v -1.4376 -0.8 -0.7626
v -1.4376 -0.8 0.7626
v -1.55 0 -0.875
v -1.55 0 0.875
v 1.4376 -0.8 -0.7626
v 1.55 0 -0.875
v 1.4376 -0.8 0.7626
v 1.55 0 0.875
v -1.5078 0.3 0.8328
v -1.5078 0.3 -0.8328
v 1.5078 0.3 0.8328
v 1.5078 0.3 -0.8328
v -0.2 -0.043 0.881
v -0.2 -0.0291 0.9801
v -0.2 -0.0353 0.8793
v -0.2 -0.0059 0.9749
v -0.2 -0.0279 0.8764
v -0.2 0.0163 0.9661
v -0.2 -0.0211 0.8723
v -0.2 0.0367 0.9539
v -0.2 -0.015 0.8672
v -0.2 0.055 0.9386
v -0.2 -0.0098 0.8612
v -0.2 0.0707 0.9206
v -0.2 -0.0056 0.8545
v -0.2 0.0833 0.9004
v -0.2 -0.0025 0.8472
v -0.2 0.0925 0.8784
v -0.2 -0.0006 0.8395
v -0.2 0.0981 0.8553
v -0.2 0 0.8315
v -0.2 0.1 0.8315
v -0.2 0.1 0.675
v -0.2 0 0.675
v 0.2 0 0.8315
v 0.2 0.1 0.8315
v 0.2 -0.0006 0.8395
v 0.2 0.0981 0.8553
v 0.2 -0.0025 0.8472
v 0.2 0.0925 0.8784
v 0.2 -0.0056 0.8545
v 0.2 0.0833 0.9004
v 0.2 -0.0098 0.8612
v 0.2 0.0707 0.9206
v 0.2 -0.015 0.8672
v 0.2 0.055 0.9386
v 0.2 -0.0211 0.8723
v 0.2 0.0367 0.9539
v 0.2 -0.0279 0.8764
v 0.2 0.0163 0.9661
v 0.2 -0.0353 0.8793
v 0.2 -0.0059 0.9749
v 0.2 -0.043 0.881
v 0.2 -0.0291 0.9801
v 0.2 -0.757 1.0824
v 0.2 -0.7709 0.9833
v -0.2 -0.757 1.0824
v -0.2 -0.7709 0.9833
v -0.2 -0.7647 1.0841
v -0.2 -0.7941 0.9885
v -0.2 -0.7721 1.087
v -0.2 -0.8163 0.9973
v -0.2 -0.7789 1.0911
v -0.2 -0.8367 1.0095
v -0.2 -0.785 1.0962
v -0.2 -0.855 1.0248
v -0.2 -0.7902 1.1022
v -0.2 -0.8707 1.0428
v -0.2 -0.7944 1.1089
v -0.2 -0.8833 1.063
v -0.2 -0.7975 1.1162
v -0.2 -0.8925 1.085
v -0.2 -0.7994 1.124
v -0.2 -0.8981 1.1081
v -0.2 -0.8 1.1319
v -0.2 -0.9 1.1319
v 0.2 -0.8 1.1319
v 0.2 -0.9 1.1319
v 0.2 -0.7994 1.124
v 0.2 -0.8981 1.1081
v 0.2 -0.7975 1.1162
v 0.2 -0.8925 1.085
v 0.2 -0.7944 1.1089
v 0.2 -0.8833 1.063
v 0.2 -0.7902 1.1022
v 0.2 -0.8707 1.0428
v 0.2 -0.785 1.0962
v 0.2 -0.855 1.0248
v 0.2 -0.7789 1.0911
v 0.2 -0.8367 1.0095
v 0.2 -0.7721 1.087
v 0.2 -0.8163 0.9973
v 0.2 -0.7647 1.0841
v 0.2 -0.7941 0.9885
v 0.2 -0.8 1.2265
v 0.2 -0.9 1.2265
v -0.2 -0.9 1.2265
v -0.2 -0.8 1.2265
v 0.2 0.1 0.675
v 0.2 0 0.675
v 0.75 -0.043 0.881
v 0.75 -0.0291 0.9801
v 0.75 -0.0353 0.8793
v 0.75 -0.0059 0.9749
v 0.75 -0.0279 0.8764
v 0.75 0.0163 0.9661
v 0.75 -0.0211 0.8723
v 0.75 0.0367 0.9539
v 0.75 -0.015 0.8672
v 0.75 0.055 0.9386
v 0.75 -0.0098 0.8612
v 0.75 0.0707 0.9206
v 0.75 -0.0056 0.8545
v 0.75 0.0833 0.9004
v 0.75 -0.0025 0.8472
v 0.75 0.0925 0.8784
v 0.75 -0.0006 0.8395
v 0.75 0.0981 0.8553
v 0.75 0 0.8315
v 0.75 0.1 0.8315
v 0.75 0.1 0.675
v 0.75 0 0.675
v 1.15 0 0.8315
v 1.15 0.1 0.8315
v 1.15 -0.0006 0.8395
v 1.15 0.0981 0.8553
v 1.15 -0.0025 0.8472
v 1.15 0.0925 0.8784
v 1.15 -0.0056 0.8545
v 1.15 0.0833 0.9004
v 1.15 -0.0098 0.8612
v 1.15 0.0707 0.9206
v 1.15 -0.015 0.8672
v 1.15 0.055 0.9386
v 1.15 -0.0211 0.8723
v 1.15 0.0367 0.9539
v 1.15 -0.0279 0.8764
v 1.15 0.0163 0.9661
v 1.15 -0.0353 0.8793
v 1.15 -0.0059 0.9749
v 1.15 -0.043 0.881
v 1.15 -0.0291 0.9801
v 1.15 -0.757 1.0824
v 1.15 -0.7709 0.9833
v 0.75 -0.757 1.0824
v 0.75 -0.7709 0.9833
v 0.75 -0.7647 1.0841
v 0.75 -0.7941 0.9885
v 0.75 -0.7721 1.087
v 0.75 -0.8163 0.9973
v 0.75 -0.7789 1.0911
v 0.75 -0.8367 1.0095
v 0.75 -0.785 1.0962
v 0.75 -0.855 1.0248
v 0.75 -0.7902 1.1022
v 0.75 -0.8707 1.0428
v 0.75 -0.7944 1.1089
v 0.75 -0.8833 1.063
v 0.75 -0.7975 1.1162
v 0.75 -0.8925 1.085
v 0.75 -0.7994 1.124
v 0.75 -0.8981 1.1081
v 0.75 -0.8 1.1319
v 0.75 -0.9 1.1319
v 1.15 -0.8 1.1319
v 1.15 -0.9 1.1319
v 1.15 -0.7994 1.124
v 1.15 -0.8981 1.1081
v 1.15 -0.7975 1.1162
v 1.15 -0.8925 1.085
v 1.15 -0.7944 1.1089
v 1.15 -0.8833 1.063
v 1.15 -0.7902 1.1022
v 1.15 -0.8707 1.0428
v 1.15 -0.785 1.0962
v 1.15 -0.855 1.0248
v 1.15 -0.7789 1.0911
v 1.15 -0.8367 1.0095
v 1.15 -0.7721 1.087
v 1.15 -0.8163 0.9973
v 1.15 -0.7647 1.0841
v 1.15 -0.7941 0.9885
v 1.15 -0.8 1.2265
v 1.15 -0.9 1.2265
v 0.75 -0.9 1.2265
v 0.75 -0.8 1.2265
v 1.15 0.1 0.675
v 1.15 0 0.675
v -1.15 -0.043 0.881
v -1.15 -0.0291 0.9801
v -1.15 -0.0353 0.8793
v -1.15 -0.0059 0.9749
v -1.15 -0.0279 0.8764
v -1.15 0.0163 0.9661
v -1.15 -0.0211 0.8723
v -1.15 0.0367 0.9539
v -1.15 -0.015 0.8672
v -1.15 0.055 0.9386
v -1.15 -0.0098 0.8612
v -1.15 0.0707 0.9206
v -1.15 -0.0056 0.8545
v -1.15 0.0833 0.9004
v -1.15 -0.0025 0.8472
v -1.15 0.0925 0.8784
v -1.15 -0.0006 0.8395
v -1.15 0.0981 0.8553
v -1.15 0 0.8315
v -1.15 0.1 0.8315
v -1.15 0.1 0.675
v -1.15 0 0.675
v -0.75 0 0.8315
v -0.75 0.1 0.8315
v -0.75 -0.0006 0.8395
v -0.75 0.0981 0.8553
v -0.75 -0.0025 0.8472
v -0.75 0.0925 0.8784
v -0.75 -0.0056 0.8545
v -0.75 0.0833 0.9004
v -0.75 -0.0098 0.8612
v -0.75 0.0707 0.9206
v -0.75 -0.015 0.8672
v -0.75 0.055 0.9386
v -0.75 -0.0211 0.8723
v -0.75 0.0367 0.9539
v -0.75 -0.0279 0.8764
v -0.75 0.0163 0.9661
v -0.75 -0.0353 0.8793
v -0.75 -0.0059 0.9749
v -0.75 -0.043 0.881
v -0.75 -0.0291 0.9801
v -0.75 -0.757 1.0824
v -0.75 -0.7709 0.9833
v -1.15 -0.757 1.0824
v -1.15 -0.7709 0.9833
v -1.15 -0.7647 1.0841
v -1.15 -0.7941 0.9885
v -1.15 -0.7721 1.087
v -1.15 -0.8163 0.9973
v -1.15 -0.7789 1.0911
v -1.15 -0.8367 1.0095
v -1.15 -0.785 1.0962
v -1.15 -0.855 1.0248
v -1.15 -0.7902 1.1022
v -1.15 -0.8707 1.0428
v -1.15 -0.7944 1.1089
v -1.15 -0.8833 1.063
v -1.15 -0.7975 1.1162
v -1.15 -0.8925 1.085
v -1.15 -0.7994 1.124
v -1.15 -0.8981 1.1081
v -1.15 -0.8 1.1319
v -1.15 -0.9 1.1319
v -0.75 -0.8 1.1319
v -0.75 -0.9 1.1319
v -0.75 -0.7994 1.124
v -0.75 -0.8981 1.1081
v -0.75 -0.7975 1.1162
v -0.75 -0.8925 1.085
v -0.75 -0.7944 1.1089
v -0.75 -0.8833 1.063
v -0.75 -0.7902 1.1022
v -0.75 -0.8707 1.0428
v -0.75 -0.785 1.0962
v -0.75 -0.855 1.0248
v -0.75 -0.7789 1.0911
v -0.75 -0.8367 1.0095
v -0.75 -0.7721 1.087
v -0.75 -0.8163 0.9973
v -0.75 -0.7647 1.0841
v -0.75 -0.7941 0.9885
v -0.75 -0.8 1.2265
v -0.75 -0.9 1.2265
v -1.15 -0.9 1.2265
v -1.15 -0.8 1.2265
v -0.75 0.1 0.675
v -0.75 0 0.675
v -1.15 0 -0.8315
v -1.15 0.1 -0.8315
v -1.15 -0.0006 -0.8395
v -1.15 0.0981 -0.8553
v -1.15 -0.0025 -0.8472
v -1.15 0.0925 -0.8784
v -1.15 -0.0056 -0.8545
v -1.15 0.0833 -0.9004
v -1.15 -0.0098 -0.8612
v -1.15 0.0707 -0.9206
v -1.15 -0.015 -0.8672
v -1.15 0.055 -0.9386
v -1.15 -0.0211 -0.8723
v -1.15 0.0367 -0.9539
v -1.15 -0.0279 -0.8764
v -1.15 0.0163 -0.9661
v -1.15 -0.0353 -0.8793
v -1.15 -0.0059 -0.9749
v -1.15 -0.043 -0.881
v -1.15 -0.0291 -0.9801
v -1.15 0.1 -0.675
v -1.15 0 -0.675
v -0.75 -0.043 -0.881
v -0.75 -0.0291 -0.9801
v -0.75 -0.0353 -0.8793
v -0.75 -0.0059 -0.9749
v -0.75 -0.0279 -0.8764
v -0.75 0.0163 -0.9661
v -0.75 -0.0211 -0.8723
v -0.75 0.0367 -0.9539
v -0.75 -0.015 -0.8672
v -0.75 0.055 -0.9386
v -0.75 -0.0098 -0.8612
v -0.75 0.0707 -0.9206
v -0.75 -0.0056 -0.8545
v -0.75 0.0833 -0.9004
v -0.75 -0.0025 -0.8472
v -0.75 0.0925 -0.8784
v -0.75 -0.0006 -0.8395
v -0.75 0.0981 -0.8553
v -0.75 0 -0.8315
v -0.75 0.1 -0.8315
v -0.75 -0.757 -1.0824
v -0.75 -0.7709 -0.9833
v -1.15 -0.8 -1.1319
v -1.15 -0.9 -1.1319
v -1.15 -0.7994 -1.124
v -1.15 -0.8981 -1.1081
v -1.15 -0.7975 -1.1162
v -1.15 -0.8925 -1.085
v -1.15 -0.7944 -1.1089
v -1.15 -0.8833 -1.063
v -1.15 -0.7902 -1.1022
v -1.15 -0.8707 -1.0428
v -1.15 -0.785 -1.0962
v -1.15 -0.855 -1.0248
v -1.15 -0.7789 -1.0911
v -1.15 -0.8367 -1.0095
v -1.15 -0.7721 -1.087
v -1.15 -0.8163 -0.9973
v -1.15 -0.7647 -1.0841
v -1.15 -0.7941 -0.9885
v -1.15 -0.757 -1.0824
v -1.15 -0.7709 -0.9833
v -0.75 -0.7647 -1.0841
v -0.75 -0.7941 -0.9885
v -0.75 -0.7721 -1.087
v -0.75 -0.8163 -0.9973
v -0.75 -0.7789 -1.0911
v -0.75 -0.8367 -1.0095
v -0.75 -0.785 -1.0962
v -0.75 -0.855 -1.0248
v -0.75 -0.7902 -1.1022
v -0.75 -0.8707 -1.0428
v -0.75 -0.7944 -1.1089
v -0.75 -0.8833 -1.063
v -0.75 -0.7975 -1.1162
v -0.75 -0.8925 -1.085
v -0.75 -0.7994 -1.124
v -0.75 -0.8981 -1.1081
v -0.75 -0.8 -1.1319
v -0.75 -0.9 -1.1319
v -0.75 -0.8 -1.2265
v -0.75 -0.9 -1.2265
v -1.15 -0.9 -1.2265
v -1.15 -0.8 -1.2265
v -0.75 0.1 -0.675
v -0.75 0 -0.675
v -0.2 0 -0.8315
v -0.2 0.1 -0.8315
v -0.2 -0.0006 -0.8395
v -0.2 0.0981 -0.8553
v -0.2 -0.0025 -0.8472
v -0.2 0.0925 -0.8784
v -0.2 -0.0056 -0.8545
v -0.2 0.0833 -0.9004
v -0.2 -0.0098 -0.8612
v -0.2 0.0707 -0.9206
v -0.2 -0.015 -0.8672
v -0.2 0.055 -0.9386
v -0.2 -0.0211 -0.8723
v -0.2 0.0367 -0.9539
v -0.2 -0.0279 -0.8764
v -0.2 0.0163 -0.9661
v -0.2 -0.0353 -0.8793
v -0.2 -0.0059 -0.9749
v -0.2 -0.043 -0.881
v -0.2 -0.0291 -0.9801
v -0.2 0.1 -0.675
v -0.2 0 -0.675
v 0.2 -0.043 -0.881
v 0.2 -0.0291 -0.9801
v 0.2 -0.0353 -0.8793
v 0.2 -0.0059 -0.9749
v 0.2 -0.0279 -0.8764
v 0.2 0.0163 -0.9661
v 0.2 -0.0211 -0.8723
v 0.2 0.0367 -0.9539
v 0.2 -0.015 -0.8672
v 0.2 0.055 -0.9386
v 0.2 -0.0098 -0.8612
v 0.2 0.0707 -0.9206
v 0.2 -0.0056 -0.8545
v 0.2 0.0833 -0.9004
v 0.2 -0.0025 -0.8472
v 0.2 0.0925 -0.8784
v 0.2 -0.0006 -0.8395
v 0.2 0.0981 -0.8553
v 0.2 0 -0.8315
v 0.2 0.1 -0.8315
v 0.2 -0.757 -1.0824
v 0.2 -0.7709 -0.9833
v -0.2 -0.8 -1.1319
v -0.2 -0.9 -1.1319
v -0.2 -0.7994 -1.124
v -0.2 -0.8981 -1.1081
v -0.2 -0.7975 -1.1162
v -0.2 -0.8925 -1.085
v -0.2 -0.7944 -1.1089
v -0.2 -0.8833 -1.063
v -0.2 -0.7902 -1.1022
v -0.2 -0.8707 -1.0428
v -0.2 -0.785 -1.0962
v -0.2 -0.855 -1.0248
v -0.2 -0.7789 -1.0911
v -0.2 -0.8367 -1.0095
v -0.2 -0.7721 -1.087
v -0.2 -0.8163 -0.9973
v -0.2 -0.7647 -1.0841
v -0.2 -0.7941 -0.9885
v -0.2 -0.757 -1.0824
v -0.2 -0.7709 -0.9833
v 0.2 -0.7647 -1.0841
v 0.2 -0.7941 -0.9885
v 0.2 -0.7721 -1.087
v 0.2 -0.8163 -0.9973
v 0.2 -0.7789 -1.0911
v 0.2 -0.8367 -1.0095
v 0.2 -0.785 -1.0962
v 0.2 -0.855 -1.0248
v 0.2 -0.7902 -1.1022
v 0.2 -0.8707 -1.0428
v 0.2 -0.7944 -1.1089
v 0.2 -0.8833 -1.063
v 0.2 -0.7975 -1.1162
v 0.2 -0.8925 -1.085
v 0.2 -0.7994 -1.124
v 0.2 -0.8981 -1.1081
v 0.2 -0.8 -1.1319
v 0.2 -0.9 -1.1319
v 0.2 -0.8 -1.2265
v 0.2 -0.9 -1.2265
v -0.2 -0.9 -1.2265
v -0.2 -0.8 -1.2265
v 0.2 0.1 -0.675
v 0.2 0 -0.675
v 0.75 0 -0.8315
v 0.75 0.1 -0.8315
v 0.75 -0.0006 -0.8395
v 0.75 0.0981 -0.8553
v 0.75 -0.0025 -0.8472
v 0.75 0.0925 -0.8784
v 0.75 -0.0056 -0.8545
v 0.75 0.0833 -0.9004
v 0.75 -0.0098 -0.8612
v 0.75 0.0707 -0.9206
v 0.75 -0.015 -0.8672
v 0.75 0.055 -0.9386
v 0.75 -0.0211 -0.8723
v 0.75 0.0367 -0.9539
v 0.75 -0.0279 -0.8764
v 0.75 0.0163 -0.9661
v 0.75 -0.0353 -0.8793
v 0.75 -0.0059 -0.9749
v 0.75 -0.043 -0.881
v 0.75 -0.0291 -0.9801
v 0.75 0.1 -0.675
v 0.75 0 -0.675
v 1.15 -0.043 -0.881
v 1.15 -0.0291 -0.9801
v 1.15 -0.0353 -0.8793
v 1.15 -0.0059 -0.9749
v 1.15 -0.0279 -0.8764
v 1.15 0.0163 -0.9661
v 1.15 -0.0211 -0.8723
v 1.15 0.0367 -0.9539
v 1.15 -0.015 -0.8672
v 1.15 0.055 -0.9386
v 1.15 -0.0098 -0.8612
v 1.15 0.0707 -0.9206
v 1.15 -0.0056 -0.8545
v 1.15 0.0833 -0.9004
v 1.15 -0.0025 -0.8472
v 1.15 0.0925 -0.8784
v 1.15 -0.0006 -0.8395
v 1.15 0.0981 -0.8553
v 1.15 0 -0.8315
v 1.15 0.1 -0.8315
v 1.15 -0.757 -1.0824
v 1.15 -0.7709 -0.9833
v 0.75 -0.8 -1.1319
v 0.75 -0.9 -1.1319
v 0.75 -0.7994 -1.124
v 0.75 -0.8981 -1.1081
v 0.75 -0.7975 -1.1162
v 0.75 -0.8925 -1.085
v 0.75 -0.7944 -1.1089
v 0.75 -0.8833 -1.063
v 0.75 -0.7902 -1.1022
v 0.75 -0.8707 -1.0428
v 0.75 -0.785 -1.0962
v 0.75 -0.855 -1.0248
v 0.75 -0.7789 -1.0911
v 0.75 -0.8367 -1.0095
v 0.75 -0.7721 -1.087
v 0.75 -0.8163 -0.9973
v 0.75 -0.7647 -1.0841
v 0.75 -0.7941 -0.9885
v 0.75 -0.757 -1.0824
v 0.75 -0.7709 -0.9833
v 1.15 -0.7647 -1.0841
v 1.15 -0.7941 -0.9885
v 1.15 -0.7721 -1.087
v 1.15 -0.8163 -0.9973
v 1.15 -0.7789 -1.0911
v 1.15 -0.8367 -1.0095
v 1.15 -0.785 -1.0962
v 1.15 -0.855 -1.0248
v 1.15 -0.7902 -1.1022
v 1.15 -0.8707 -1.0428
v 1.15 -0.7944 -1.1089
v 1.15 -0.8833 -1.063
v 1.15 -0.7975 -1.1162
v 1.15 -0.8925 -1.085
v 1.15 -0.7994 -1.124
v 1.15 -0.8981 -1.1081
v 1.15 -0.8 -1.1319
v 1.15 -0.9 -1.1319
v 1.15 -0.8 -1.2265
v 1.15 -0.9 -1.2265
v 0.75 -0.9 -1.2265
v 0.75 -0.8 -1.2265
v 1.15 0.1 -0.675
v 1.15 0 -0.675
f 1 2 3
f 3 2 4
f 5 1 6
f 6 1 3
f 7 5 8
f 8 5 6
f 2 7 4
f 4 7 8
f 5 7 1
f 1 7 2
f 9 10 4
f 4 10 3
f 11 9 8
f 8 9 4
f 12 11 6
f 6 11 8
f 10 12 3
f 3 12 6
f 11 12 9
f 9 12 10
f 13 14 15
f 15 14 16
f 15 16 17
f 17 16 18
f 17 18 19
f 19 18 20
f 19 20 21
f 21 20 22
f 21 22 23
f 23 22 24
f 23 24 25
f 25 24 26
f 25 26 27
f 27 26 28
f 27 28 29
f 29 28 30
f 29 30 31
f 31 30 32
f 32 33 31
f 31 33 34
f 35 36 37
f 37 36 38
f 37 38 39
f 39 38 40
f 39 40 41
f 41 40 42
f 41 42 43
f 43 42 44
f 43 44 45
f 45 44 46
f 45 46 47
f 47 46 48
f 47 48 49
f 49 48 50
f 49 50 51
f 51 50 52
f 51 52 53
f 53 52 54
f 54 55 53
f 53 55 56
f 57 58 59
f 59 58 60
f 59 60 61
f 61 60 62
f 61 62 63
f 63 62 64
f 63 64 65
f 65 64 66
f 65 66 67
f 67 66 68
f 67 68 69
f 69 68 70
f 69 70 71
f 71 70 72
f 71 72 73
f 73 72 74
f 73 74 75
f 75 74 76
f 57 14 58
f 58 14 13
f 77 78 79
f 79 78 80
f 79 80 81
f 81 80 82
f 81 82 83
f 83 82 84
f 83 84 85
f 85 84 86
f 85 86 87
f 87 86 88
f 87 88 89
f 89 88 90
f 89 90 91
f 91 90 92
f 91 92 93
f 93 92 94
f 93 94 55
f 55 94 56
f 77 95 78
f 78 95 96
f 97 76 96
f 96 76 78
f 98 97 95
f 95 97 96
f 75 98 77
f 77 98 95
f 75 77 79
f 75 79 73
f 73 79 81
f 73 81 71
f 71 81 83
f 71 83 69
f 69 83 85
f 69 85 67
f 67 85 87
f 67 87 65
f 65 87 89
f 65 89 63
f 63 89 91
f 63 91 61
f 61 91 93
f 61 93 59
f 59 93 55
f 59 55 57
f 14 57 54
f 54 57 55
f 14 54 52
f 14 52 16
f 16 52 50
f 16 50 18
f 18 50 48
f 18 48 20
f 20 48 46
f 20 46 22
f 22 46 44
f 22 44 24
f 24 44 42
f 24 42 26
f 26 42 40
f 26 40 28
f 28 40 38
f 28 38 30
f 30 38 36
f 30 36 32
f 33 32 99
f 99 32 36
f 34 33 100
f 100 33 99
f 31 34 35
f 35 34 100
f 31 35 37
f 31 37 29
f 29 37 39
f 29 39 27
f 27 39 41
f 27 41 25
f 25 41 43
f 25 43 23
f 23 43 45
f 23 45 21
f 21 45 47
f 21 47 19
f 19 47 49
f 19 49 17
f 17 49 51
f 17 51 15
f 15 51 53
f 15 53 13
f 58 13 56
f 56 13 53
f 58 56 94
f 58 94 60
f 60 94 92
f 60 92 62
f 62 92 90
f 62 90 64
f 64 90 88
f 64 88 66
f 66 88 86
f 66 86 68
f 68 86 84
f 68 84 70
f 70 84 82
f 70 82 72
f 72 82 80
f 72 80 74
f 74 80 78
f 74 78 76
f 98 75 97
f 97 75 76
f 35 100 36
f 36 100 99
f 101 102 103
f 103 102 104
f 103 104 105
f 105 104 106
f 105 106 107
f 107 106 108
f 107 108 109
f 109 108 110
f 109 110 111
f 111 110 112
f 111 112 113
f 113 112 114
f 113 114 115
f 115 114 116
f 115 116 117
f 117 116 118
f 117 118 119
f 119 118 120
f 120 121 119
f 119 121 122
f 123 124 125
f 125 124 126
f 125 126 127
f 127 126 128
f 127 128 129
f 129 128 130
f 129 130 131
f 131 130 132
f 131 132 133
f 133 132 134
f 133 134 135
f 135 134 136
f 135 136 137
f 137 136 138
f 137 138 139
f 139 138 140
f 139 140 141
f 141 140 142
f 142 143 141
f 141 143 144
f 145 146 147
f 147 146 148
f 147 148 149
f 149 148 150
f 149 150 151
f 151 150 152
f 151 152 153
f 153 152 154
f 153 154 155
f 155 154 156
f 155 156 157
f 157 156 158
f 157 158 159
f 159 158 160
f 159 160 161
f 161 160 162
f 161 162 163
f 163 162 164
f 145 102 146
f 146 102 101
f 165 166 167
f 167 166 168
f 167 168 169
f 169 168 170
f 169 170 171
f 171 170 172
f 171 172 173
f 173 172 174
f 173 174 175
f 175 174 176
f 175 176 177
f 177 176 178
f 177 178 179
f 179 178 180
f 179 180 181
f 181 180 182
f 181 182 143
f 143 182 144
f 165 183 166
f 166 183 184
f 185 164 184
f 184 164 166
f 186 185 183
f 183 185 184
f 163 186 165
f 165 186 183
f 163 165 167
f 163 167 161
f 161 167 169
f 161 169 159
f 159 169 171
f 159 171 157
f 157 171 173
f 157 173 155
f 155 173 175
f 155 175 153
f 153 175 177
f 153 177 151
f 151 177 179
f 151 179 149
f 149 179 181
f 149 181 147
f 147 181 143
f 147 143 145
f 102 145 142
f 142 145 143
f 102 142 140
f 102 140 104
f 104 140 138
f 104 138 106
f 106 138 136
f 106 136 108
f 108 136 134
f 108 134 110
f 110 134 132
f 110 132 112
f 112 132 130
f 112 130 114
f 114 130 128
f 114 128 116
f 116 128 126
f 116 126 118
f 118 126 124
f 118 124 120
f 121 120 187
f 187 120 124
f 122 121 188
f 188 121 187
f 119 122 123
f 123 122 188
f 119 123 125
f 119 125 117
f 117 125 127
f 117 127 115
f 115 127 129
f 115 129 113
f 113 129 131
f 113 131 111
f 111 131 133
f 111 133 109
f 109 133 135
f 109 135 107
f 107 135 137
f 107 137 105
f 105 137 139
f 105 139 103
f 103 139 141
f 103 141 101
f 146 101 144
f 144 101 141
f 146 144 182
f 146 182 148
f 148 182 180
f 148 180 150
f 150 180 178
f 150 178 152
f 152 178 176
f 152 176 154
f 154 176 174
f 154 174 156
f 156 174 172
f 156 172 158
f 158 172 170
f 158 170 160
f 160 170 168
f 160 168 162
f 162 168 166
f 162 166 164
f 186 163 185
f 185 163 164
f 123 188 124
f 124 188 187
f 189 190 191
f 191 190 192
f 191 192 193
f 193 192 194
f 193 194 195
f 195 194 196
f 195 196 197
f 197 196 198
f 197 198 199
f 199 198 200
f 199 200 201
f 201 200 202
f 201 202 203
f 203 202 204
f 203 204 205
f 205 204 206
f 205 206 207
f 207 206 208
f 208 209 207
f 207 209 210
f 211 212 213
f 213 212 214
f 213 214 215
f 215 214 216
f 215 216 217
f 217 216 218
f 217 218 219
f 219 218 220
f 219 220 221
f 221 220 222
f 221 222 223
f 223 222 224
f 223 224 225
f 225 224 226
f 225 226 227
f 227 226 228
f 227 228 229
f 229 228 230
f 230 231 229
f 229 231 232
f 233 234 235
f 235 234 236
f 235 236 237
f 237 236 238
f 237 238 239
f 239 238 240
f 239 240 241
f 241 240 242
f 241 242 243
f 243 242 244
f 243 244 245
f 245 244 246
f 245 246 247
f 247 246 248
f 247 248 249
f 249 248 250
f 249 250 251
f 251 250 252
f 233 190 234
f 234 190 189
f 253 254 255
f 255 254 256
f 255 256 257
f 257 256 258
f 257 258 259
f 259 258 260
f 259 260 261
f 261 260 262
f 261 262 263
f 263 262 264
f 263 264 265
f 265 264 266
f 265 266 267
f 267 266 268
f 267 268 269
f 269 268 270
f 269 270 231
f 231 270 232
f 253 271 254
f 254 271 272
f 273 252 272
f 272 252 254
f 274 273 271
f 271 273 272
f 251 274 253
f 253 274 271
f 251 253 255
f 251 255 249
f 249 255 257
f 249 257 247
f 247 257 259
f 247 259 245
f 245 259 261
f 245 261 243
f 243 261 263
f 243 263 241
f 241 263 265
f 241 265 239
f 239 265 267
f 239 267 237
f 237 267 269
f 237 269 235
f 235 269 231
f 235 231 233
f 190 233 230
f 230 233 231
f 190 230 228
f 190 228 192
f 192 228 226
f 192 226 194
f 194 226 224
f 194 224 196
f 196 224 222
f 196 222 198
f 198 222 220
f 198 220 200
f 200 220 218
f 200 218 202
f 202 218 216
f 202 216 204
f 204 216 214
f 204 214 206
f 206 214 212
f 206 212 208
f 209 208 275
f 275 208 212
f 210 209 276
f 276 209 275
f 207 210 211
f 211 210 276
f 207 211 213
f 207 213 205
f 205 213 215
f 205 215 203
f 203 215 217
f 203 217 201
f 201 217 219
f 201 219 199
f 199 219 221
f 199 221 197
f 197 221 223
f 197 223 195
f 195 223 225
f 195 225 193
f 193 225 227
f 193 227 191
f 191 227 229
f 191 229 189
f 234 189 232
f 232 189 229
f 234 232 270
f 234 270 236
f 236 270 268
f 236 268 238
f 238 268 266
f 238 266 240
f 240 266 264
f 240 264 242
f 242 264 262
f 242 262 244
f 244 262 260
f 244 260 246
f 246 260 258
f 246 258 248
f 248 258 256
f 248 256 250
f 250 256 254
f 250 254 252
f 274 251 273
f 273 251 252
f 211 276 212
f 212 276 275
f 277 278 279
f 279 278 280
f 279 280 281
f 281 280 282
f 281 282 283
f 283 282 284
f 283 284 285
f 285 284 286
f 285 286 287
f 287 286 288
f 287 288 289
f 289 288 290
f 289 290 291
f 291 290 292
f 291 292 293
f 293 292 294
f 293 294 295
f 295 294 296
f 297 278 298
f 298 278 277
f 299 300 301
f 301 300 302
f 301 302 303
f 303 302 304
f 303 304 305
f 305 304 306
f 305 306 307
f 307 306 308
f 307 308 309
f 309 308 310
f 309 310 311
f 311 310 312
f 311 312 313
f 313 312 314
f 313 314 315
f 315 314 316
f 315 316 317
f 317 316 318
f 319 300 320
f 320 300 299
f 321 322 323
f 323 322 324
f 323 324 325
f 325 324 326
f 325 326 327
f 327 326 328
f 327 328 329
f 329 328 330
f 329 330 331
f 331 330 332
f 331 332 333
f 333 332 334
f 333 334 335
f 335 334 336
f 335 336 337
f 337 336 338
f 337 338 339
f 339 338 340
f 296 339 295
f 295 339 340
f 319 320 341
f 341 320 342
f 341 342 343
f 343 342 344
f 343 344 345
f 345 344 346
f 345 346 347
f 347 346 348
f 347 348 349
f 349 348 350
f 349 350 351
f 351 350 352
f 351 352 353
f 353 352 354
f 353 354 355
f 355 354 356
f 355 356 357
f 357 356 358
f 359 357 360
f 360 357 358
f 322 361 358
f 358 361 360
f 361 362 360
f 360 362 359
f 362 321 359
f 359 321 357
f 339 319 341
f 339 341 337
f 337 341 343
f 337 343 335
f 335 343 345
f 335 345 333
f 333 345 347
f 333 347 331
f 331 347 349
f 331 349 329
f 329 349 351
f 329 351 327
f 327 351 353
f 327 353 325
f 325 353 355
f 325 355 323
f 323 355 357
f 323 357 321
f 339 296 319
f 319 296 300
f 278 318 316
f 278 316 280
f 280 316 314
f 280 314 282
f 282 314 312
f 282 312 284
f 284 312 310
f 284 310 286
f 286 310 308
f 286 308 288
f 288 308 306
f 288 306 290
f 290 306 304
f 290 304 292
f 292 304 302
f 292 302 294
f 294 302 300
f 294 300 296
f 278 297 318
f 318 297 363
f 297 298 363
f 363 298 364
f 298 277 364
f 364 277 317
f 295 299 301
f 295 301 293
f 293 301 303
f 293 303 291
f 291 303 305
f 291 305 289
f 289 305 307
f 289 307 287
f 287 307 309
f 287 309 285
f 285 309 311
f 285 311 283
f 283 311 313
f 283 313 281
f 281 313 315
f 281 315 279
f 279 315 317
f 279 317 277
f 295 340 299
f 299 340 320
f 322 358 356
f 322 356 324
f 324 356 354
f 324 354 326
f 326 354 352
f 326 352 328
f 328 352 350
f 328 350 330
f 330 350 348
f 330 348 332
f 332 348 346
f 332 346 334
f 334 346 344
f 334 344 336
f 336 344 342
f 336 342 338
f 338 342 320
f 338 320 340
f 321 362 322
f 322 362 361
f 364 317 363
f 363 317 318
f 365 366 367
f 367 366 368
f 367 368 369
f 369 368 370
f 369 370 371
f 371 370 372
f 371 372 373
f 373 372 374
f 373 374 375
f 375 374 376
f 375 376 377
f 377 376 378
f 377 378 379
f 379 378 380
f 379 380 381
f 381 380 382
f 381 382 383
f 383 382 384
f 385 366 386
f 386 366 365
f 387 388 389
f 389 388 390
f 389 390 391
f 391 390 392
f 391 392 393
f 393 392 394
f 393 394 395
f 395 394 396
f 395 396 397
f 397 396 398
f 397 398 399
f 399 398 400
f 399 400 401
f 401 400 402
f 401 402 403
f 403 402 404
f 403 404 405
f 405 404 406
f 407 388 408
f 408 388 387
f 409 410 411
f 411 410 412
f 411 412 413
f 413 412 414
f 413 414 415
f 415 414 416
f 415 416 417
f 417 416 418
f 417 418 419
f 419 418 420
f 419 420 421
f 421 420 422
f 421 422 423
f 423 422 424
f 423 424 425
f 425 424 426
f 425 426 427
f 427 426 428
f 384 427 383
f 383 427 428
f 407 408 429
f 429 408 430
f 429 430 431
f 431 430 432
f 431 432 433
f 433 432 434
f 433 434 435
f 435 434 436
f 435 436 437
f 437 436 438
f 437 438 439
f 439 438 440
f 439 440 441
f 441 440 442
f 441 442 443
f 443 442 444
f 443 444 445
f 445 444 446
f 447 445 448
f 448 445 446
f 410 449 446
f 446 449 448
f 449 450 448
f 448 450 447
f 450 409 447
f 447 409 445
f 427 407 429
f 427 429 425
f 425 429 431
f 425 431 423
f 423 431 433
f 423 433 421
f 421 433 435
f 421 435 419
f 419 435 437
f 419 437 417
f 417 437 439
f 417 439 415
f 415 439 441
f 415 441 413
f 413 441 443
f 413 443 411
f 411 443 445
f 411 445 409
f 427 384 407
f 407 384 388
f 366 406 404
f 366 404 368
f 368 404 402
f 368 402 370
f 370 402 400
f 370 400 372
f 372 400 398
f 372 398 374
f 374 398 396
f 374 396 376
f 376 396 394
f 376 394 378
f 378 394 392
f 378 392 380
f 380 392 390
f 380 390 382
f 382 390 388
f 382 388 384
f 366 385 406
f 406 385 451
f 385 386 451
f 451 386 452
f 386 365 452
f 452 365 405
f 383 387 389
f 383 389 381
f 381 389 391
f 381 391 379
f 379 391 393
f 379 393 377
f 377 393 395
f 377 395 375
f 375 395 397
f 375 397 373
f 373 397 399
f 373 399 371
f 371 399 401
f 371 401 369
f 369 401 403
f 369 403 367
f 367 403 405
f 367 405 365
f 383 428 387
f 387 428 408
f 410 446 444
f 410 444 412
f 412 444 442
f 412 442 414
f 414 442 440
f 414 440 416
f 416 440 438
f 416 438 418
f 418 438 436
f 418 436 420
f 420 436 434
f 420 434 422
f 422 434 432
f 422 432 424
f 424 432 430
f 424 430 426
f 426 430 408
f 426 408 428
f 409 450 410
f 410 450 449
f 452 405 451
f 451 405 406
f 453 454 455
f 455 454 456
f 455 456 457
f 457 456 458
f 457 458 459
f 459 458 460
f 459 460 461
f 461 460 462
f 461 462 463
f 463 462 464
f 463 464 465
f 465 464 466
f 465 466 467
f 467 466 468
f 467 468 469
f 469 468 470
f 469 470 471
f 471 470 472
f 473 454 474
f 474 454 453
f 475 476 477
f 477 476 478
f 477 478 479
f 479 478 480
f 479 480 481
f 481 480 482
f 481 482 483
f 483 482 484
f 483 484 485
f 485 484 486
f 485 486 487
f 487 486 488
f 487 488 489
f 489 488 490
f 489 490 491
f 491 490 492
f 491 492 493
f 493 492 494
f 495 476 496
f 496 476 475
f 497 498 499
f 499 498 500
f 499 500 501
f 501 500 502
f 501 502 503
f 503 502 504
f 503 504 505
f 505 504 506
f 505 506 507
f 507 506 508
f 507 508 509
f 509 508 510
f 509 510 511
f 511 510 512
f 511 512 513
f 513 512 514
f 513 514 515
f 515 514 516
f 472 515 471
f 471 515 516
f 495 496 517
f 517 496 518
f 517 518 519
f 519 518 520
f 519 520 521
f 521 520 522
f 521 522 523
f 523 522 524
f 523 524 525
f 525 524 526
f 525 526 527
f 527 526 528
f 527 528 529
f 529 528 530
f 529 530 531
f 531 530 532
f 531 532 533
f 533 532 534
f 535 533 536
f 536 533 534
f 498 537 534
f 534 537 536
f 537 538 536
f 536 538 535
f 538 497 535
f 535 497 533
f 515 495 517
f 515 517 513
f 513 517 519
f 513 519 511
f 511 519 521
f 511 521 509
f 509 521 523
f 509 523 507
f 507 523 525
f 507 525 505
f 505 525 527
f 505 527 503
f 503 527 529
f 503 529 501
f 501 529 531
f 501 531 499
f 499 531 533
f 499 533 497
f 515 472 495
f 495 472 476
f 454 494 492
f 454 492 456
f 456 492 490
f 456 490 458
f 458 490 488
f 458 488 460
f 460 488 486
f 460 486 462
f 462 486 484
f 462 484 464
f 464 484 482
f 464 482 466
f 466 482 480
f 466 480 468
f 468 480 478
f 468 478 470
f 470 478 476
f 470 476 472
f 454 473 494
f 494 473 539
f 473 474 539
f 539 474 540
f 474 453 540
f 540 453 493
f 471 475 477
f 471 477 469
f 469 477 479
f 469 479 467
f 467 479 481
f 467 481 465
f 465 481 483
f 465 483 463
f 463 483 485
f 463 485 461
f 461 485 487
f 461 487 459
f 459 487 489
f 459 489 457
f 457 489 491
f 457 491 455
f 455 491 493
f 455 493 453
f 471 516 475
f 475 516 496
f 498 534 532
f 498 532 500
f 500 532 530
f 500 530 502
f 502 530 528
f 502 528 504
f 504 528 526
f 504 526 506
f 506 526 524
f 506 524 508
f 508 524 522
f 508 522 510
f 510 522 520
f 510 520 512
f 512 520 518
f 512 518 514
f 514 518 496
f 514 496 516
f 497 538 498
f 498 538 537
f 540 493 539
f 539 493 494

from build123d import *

# Parameters (mm, degrees)
SKETCH1_W                     = 3.1
SKETCH1_H                     = 1.75
BOSS_EXTRUDE1_DEPTH           = 0.3
BOSS_EXTRUDE1_TAPER           = 8
BOSS_EXTRUDE1_OTHER_WAY_DEPTH = 0.8
BOSS_EXTRUDE1_OTHER_WAY_TAPER = 8
BASE_FLANGE2_DEPTH            = 0.2
LPATTERN1_COUNT               = 2
LPATTERN1_PITCH               = 0.95
LPATTERN1_2_COUNT             = 2
LPATTERN1_2_PITCH             = 0.95


# Sheet-metal steps are written as plain solids
with BuildPart() as part:
    # Sketch1 → Boss-Extrude1 (new body)
    with BuildSketch(Plane(origin=(0, 0, 0), x_dir=(1, 0, 0), z_dir=(0, 1, 0))):
        Rectangle(SKETCH1_W, SKETCH1_H)
    extrude(amount=BOSS_EXTRUDE1_DEPTH, taper=BOSS_EXTRUDE1_TAPER)

    # Sketch1 → Boss-Extrude1 other way (add)
    with BuildSketch(Plane(origin=(0, 0, 0), x_dir=(1, 0, 0), z_dir=(0, 1, 0))):
        Rectangle(SKETCH1_W, SKETCH1_H)
    extrude(amount=-BOSS_EXTRUDE1_OTHER_WAY_DEPTH, taper=BOSS_EXTRUDE1_OTHER_WAY_TAPER)


with BuildPart() as body_2:
    # Sketch2 → Base-Flange2 (new, symmetric)
    with BuildSketch(Plane.ZY):
        with BuildLine():
            Line((0.675, 0), (0.831535663, 0))
            ThreePointArc((0.831535663, 0), (0.864338615, -0.012264521), (0.881049067, -0.043041345))
            Line((0.881049067, -0.043041345), (0.983339552, -0.770875965))
            ThreePointArc((0.983339552, -0.770875965), (1.033470908, -0.863206437), (1.131879762, -0.9))
            Line((1.131879762, -0.9), (1.226486751, -0.9))
            Line((1.226486751, -0.9), (1.226486751, -0.8))
            Line((1.226486751, -0.8), (1.131879762, -0.8))
            ThreePointArc((1.131879762, -0.8), (1.09907681, -0.787735479), (1.082366358, -0.756958655))
            Line((1.082366358, -0.756958655), (0.980075873, -0.029124035))
            ThreePointArc((0.980075873, -0.029124035), (0.929944517, 0.063206437), (0.831535663, 0.1))
            Line((0.831535663, 0.1), (0.675, 0.1))
            Line((0.675, 0.1), (0.675, 0))
        make_face()
    extrude(amount=BASE_FLANGE2_DEPTH, both=True)


with BuildPart() as lpattern1_1:
    # LPattern1: pattern copy
    add(body_2.part.moved(Location(Vector(1, 0, 0) * (1 * LPATTERN1_PITCH))))


with BuildPart() as lpattern1_2_1:
    # LPattern1 2: pattern copy
    add(body_2.part.moved(Location(Vector(-1, 0, 0) * (1 * LPATTERN1_2_PITCH))))


with BuildPart() as body_5:
    # Mirror1: mirrored copy
    add(lpattern1_2_1.part.mirror(Plane(origin=(0, 0, 0), x_dir=(1, 0, 0), z_dir=(0, 0, -1))))


with BuildPart() as body_6:
    # Mirror1 2: mirrored copy
    add(body_2.part.mirror(Plane(origin=(0, 0, 0), x_dir=(1, 0, 0), z_dir=(0, 0, -1))))


with BuildPart() as body_7:
    # Mirror1 3: mirrored copy
    add(lpattern1_1.part.mirror(Plane(origin=(0, 0, 0), x_dir=(1, 0, 0), z_dir=(0, 0, -1))))


solid = Compound([part.part, body_2.part, lpattern1_1.part, lpattern1_2_1.part, body_5.part, body_6.part, body_7.part])
